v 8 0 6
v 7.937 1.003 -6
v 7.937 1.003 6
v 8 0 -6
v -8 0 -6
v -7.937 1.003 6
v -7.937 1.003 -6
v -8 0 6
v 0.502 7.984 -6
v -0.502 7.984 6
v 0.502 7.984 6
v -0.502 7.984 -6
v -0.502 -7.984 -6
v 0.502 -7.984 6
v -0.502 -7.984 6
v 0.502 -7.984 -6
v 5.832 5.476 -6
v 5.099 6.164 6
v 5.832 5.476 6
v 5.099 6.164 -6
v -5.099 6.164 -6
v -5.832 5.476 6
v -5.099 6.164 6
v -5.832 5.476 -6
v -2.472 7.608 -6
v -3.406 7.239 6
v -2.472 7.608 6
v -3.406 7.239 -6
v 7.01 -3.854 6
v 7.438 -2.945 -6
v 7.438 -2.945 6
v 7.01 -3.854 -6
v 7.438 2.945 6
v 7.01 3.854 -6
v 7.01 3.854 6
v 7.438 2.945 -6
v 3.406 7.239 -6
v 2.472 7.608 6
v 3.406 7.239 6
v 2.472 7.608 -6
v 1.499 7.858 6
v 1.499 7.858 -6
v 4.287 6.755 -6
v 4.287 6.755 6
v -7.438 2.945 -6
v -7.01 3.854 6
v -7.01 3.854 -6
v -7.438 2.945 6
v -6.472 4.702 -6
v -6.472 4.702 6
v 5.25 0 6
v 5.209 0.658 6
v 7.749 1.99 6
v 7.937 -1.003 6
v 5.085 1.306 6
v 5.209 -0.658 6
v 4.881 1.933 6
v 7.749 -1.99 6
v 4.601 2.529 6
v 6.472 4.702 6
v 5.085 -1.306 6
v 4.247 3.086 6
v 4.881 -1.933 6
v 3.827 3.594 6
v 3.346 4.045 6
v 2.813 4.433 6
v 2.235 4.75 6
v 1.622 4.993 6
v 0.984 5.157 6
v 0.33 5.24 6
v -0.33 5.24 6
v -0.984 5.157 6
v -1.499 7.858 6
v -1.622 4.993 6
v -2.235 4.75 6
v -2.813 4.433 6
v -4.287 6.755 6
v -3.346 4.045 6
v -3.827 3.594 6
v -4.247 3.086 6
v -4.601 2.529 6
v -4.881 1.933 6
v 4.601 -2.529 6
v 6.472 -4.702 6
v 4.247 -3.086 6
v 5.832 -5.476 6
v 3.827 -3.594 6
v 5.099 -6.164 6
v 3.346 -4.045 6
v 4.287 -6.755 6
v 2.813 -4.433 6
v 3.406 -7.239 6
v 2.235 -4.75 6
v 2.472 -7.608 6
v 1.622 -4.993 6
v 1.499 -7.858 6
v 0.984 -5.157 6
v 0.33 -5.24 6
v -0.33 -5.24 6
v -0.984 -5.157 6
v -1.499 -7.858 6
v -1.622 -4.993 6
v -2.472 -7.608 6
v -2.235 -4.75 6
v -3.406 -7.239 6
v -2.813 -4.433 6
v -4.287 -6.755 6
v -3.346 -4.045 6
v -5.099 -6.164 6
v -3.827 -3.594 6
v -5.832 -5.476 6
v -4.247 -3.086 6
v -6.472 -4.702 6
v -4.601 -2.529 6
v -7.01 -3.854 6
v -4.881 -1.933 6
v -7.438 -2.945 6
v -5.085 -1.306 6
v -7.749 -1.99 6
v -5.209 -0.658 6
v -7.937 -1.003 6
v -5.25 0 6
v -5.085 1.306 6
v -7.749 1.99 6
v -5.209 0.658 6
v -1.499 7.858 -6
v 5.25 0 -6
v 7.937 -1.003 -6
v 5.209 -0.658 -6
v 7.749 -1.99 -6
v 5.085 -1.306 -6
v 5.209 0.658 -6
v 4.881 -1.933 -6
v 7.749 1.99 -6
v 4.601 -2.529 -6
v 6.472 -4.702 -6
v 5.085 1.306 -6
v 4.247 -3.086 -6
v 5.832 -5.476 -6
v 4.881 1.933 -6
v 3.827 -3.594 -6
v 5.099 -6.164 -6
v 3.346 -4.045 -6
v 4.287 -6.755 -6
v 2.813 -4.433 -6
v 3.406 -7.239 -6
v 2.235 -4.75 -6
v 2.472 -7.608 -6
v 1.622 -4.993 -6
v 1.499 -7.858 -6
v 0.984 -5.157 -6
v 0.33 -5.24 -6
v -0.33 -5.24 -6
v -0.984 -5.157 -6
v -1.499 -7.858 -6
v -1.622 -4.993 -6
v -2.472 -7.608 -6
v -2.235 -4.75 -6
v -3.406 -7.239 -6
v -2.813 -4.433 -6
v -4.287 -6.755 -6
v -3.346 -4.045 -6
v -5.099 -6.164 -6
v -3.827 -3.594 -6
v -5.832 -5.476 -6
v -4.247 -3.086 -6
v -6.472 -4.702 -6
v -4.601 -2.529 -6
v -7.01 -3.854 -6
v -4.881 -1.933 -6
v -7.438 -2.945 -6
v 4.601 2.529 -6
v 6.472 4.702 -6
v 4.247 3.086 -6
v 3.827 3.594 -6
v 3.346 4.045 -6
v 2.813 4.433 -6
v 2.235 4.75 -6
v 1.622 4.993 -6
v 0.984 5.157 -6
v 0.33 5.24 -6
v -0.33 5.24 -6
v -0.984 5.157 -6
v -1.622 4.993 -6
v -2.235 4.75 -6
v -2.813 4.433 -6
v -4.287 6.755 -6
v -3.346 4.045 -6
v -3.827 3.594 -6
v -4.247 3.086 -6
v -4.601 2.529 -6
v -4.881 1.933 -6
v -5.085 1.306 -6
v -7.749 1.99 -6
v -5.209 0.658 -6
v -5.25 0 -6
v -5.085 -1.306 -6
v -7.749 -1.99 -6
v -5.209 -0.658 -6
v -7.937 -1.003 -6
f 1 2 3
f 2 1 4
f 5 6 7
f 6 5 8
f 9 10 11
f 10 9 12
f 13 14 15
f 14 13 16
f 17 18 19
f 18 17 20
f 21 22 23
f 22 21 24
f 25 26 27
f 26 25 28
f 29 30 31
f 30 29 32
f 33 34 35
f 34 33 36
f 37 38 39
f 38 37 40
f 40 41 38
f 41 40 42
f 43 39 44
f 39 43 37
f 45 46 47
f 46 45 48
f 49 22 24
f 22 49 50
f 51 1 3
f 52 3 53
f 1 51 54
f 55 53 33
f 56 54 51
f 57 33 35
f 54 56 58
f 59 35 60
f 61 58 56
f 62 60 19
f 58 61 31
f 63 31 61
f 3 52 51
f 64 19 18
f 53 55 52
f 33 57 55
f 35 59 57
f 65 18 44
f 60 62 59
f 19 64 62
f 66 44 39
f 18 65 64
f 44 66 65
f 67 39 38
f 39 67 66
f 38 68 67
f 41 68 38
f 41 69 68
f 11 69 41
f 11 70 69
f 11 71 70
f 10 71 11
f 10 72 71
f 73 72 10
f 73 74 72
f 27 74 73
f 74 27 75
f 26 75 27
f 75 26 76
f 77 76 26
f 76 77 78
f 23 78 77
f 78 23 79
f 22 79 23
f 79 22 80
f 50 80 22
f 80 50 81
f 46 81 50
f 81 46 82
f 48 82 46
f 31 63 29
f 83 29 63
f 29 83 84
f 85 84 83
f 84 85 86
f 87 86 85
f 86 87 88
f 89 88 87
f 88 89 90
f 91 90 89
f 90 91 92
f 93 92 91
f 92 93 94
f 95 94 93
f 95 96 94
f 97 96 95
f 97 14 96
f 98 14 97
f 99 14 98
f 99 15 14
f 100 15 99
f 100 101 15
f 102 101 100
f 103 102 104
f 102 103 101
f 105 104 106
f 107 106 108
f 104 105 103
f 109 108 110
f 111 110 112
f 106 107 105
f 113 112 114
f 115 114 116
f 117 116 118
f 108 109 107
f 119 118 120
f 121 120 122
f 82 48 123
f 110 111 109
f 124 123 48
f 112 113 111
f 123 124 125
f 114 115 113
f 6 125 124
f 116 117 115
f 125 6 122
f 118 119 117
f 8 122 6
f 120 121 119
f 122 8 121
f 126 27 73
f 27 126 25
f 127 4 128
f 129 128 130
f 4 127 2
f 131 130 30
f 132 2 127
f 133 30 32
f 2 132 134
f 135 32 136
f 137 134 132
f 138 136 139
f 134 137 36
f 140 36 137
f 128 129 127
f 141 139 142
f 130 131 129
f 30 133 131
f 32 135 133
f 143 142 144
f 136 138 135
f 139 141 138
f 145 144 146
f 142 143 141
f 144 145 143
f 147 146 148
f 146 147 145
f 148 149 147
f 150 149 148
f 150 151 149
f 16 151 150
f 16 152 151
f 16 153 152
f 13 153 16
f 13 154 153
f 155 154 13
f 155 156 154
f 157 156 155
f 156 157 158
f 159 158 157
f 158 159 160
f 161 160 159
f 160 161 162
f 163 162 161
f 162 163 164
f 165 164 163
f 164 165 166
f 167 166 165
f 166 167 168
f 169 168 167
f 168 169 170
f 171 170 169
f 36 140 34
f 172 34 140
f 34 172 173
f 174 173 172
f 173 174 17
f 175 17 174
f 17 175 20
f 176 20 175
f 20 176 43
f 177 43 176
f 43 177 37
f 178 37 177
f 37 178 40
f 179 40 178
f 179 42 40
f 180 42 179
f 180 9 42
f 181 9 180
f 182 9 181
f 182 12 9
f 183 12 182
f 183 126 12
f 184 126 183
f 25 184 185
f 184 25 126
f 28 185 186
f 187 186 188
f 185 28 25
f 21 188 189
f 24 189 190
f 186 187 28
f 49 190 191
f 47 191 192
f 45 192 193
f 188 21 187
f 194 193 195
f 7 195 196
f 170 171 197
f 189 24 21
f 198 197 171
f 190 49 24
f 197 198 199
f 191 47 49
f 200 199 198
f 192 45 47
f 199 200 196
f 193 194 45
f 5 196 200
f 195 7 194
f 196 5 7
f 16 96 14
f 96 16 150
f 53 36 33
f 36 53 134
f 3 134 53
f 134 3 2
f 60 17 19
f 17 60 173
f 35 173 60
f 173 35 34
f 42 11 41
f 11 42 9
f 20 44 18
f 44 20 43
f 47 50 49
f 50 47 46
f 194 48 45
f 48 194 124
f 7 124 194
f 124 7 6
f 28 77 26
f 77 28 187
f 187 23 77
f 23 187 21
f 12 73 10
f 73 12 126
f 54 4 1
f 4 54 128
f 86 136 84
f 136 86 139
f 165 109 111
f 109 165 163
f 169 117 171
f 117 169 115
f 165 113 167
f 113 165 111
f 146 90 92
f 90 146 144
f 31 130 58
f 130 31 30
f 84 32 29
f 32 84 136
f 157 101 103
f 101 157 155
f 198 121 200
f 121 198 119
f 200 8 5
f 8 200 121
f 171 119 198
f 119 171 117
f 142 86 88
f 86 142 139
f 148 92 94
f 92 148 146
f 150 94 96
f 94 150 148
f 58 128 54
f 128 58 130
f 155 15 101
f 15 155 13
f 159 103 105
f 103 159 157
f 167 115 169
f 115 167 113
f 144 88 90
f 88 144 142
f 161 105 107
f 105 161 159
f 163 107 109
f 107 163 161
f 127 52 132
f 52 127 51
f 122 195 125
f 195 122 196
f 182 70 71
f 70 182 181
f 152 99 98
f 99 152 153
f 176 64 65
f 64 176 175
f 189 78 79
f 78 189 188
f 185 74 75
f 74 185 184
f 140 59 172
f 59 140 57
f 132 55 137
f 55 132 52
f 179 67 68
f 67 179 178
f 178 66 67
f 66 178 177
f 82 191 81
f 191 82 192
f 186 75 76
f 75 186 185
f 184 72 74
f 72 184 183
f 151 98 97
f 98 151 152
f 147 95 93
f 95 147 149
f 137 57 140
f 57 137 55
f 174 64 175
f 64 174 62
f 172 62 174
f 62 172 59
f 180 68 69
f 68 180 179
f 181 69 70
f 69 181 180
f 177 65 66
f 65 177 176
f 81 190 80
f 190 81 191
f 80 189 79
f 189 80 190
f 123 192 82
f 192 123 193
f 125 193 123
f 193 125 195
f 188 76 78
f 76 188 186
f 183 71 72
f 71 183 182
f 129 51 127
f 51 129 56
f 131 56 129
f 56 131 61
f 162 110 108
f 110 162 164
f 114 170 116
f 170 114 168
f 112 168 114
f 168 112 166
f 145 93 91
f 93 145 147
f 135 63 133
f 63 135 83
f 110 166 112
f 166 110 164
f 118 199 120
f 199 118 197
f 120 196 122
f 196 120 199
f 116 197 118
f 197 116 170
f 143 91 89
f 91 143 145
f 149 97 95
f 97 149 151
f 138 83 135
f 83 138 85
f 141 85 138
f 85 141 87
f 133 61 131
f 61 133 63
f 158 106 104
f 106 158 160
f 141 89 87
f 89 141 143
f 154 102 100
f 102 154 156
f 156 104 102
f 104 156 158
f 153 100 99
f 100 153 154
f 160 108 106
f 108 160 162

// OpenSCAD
$fn = 50;


difference() {
	union() {
		translate(v = [0, 0, -6.0000000000]) {
			cylinder(h = 12, r = 8.0000000000);
		}
	}
	union() {
		translate(v = [0, 0, -100.0000000000]) {
			cylinder(h = 200, r = 5.2500000000);
		}
	}
}
